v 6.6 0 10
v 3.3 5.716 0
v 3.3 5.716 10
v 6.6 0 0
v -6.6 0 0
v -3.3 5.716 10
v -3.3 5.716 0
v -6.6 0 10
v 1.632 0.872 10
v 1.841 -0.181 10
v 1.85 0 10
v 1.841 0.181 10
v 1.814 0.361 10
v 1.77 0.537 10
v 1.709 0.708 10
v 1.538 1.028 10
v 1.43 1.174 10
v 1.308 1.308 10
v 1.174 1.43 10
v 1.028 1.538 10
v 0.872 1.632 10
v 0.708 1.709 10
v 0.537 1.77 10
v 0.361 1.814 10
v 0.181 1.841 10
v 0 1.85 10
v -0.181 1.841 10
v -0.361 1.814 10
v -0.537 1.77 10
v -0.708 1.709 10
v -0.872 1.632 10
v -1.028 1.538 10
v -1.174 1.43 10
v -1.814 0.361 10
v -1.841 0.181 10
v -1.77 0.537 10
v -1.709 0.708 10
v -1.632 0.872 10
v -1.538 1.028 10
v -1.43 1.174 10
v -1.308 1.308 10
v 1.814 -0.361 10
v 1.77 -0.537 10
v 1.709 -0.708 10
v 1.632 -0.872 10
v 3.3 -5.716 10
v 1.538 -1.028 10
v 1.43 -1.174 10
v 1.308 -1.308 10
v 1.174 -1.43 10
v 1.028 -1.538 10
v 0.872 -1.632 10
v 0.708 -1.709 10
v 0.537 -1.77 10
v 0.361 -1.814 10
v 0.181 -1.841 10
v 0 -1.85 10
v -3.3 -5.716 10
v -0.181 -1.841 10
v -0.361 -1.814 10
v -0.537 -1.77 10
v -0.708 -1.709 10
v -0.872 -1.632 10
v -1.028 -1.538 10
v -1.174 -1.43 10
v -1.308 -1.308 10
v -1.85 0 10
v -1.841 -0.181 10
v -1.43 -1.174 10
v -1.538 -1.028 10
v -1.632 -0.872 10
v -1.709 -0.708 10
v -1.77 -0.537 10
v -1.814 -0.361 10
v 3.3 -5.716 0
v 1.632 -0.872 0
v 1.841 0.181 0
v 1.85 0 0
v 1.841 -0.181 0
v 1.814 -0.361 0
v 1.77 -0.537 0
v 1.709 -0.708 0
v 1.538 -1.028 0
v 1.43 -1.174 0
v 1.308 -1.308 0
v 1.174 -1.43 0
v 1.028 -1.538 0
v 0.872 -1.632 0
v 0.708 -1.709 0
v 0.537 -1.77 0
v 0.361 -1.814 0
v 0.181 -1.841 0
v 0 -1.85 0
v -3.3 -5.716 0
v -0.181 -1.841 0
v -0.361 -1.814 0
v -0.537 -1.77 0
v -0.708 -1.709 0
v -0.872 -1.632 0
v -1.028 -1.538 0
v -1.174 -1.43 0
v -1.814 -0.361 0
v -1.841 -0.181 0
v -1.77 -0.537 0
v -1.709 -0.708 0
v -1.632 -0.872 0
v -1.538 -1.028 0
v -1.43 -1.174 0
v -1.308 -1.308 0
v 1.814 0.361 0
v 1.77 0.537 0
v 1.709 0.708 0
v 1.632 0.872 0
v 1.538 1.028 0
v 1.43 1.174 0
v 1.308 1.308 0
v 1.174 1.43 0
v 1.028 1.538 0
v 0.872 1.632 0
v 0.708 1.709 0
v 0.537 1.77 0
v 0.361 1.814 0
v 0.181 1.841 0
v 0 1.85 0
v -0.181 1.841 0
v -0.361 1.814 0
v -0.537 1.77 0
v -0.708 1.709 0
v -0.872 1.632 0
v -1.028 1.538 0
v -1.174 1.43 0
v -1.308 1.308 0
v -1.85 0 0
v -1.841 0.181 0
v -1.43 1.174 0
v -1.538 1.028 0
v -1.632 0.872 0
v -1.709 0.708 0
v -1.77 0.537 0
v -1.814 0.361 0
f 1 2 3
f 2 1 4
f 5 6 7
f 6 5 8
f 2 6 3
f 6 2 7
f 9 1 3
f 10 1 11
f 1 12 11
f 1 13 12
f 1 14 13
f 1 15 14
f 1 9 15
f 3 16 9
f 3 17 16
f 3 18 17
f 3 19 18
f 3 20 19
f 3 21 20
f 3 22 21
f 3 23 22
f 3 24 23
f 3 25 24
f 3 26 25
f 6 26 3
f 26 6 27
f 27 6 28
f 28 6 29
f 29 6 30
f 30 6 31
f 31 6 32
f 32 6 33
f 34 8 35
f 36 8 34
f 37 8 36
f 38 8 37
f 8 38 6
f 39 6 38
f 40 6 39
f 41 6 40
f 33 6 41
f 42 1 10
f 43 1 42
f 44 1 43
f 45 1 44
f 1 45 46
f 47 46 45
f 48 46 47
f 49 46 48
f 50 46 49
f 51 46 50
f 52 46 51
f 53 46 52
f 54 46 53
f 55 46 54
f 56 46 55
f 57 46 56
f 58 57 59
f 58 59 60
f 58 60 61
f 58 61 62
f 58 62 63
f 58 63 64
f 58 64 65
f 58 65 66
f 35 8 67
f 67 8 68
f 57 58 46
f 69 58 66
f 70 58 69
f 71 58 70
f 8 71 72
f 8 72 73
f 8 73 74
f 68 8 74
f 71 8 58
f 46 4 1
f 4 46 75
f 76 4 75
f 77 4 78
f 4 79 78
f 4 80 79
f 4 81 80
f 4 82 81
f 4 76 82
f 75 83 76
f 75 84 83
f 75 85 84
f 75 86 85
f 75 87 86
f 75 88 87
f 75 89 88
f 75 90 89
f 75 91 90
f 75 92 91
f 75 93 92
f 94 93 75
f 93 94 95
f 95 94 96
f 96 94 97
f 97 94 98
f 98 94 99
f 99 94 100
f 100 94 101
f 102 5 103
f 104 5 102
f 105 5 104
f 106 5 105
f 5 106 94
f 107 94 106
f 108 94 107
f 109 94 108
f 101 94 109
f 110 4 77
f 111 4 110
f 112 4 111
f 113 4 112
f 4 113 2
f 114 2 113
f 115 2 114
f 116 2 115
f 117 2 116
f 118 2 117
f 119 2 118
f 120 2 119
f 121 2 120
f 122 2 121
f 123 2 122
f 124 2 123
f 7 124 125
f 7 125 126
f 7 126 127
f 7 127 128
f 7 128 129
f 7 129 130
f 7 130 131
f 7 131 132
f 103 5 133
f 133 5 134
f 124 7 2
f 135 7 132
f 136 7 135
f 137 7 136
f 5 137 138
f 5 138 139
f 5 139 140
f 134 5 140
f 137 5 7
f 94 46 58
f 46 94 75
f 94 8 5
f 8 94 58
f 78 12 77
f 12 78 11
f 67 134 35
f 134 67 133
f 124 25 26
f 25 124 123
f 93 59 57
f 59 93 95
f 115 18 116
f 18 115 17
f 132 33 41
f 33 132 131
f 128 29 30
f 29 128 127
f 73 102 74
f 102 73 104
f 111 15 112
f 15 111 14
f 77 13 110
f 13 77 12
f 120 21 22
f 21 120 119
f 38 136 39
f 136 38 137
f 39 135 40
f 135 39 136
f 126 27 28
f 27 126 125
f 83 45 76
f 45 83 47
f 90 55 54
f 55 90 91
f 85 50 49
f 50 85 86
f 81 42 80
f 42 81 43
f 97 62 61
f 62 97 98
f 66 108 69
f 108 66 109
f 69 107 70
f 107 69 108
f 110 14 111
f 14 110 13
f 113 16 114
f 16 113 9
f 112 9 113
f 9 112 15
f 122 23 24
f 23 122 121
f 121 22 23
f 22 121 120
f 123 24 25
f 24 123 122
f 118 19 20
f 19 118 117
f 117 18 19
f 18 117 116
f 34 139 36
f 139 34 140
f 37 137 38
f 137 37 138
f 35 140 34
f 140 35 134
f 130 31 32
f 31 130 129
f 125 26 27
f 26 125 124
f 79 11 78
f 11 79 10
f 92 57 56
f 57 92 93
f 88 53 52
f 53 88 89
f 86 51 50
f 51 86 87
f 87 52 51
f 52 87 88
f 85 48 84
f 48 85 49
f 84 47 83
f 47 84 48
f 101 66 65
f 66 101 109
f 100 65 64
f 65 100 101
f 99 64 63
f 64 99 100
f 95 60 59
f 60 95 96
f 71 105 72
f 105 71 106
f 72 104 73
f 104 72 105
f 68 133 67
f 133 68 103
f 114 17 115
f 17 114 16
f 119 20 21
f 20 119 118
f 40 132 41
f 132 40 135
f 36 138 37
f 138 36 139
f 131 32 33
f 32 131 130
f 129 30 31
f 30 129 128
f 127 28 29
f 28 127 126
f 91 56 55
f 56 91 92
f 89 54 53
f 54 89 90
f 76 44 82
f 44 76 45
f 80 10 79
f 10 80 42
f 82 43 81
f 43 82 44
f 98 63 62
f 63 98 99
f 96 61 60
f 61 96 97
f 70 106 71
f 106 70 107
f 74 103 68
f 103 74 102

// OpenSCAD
difference() {
cylinder(r=6.6, h=10, $fn=6);
cylinder(r=1.85, h=10, $fn=64);
}
